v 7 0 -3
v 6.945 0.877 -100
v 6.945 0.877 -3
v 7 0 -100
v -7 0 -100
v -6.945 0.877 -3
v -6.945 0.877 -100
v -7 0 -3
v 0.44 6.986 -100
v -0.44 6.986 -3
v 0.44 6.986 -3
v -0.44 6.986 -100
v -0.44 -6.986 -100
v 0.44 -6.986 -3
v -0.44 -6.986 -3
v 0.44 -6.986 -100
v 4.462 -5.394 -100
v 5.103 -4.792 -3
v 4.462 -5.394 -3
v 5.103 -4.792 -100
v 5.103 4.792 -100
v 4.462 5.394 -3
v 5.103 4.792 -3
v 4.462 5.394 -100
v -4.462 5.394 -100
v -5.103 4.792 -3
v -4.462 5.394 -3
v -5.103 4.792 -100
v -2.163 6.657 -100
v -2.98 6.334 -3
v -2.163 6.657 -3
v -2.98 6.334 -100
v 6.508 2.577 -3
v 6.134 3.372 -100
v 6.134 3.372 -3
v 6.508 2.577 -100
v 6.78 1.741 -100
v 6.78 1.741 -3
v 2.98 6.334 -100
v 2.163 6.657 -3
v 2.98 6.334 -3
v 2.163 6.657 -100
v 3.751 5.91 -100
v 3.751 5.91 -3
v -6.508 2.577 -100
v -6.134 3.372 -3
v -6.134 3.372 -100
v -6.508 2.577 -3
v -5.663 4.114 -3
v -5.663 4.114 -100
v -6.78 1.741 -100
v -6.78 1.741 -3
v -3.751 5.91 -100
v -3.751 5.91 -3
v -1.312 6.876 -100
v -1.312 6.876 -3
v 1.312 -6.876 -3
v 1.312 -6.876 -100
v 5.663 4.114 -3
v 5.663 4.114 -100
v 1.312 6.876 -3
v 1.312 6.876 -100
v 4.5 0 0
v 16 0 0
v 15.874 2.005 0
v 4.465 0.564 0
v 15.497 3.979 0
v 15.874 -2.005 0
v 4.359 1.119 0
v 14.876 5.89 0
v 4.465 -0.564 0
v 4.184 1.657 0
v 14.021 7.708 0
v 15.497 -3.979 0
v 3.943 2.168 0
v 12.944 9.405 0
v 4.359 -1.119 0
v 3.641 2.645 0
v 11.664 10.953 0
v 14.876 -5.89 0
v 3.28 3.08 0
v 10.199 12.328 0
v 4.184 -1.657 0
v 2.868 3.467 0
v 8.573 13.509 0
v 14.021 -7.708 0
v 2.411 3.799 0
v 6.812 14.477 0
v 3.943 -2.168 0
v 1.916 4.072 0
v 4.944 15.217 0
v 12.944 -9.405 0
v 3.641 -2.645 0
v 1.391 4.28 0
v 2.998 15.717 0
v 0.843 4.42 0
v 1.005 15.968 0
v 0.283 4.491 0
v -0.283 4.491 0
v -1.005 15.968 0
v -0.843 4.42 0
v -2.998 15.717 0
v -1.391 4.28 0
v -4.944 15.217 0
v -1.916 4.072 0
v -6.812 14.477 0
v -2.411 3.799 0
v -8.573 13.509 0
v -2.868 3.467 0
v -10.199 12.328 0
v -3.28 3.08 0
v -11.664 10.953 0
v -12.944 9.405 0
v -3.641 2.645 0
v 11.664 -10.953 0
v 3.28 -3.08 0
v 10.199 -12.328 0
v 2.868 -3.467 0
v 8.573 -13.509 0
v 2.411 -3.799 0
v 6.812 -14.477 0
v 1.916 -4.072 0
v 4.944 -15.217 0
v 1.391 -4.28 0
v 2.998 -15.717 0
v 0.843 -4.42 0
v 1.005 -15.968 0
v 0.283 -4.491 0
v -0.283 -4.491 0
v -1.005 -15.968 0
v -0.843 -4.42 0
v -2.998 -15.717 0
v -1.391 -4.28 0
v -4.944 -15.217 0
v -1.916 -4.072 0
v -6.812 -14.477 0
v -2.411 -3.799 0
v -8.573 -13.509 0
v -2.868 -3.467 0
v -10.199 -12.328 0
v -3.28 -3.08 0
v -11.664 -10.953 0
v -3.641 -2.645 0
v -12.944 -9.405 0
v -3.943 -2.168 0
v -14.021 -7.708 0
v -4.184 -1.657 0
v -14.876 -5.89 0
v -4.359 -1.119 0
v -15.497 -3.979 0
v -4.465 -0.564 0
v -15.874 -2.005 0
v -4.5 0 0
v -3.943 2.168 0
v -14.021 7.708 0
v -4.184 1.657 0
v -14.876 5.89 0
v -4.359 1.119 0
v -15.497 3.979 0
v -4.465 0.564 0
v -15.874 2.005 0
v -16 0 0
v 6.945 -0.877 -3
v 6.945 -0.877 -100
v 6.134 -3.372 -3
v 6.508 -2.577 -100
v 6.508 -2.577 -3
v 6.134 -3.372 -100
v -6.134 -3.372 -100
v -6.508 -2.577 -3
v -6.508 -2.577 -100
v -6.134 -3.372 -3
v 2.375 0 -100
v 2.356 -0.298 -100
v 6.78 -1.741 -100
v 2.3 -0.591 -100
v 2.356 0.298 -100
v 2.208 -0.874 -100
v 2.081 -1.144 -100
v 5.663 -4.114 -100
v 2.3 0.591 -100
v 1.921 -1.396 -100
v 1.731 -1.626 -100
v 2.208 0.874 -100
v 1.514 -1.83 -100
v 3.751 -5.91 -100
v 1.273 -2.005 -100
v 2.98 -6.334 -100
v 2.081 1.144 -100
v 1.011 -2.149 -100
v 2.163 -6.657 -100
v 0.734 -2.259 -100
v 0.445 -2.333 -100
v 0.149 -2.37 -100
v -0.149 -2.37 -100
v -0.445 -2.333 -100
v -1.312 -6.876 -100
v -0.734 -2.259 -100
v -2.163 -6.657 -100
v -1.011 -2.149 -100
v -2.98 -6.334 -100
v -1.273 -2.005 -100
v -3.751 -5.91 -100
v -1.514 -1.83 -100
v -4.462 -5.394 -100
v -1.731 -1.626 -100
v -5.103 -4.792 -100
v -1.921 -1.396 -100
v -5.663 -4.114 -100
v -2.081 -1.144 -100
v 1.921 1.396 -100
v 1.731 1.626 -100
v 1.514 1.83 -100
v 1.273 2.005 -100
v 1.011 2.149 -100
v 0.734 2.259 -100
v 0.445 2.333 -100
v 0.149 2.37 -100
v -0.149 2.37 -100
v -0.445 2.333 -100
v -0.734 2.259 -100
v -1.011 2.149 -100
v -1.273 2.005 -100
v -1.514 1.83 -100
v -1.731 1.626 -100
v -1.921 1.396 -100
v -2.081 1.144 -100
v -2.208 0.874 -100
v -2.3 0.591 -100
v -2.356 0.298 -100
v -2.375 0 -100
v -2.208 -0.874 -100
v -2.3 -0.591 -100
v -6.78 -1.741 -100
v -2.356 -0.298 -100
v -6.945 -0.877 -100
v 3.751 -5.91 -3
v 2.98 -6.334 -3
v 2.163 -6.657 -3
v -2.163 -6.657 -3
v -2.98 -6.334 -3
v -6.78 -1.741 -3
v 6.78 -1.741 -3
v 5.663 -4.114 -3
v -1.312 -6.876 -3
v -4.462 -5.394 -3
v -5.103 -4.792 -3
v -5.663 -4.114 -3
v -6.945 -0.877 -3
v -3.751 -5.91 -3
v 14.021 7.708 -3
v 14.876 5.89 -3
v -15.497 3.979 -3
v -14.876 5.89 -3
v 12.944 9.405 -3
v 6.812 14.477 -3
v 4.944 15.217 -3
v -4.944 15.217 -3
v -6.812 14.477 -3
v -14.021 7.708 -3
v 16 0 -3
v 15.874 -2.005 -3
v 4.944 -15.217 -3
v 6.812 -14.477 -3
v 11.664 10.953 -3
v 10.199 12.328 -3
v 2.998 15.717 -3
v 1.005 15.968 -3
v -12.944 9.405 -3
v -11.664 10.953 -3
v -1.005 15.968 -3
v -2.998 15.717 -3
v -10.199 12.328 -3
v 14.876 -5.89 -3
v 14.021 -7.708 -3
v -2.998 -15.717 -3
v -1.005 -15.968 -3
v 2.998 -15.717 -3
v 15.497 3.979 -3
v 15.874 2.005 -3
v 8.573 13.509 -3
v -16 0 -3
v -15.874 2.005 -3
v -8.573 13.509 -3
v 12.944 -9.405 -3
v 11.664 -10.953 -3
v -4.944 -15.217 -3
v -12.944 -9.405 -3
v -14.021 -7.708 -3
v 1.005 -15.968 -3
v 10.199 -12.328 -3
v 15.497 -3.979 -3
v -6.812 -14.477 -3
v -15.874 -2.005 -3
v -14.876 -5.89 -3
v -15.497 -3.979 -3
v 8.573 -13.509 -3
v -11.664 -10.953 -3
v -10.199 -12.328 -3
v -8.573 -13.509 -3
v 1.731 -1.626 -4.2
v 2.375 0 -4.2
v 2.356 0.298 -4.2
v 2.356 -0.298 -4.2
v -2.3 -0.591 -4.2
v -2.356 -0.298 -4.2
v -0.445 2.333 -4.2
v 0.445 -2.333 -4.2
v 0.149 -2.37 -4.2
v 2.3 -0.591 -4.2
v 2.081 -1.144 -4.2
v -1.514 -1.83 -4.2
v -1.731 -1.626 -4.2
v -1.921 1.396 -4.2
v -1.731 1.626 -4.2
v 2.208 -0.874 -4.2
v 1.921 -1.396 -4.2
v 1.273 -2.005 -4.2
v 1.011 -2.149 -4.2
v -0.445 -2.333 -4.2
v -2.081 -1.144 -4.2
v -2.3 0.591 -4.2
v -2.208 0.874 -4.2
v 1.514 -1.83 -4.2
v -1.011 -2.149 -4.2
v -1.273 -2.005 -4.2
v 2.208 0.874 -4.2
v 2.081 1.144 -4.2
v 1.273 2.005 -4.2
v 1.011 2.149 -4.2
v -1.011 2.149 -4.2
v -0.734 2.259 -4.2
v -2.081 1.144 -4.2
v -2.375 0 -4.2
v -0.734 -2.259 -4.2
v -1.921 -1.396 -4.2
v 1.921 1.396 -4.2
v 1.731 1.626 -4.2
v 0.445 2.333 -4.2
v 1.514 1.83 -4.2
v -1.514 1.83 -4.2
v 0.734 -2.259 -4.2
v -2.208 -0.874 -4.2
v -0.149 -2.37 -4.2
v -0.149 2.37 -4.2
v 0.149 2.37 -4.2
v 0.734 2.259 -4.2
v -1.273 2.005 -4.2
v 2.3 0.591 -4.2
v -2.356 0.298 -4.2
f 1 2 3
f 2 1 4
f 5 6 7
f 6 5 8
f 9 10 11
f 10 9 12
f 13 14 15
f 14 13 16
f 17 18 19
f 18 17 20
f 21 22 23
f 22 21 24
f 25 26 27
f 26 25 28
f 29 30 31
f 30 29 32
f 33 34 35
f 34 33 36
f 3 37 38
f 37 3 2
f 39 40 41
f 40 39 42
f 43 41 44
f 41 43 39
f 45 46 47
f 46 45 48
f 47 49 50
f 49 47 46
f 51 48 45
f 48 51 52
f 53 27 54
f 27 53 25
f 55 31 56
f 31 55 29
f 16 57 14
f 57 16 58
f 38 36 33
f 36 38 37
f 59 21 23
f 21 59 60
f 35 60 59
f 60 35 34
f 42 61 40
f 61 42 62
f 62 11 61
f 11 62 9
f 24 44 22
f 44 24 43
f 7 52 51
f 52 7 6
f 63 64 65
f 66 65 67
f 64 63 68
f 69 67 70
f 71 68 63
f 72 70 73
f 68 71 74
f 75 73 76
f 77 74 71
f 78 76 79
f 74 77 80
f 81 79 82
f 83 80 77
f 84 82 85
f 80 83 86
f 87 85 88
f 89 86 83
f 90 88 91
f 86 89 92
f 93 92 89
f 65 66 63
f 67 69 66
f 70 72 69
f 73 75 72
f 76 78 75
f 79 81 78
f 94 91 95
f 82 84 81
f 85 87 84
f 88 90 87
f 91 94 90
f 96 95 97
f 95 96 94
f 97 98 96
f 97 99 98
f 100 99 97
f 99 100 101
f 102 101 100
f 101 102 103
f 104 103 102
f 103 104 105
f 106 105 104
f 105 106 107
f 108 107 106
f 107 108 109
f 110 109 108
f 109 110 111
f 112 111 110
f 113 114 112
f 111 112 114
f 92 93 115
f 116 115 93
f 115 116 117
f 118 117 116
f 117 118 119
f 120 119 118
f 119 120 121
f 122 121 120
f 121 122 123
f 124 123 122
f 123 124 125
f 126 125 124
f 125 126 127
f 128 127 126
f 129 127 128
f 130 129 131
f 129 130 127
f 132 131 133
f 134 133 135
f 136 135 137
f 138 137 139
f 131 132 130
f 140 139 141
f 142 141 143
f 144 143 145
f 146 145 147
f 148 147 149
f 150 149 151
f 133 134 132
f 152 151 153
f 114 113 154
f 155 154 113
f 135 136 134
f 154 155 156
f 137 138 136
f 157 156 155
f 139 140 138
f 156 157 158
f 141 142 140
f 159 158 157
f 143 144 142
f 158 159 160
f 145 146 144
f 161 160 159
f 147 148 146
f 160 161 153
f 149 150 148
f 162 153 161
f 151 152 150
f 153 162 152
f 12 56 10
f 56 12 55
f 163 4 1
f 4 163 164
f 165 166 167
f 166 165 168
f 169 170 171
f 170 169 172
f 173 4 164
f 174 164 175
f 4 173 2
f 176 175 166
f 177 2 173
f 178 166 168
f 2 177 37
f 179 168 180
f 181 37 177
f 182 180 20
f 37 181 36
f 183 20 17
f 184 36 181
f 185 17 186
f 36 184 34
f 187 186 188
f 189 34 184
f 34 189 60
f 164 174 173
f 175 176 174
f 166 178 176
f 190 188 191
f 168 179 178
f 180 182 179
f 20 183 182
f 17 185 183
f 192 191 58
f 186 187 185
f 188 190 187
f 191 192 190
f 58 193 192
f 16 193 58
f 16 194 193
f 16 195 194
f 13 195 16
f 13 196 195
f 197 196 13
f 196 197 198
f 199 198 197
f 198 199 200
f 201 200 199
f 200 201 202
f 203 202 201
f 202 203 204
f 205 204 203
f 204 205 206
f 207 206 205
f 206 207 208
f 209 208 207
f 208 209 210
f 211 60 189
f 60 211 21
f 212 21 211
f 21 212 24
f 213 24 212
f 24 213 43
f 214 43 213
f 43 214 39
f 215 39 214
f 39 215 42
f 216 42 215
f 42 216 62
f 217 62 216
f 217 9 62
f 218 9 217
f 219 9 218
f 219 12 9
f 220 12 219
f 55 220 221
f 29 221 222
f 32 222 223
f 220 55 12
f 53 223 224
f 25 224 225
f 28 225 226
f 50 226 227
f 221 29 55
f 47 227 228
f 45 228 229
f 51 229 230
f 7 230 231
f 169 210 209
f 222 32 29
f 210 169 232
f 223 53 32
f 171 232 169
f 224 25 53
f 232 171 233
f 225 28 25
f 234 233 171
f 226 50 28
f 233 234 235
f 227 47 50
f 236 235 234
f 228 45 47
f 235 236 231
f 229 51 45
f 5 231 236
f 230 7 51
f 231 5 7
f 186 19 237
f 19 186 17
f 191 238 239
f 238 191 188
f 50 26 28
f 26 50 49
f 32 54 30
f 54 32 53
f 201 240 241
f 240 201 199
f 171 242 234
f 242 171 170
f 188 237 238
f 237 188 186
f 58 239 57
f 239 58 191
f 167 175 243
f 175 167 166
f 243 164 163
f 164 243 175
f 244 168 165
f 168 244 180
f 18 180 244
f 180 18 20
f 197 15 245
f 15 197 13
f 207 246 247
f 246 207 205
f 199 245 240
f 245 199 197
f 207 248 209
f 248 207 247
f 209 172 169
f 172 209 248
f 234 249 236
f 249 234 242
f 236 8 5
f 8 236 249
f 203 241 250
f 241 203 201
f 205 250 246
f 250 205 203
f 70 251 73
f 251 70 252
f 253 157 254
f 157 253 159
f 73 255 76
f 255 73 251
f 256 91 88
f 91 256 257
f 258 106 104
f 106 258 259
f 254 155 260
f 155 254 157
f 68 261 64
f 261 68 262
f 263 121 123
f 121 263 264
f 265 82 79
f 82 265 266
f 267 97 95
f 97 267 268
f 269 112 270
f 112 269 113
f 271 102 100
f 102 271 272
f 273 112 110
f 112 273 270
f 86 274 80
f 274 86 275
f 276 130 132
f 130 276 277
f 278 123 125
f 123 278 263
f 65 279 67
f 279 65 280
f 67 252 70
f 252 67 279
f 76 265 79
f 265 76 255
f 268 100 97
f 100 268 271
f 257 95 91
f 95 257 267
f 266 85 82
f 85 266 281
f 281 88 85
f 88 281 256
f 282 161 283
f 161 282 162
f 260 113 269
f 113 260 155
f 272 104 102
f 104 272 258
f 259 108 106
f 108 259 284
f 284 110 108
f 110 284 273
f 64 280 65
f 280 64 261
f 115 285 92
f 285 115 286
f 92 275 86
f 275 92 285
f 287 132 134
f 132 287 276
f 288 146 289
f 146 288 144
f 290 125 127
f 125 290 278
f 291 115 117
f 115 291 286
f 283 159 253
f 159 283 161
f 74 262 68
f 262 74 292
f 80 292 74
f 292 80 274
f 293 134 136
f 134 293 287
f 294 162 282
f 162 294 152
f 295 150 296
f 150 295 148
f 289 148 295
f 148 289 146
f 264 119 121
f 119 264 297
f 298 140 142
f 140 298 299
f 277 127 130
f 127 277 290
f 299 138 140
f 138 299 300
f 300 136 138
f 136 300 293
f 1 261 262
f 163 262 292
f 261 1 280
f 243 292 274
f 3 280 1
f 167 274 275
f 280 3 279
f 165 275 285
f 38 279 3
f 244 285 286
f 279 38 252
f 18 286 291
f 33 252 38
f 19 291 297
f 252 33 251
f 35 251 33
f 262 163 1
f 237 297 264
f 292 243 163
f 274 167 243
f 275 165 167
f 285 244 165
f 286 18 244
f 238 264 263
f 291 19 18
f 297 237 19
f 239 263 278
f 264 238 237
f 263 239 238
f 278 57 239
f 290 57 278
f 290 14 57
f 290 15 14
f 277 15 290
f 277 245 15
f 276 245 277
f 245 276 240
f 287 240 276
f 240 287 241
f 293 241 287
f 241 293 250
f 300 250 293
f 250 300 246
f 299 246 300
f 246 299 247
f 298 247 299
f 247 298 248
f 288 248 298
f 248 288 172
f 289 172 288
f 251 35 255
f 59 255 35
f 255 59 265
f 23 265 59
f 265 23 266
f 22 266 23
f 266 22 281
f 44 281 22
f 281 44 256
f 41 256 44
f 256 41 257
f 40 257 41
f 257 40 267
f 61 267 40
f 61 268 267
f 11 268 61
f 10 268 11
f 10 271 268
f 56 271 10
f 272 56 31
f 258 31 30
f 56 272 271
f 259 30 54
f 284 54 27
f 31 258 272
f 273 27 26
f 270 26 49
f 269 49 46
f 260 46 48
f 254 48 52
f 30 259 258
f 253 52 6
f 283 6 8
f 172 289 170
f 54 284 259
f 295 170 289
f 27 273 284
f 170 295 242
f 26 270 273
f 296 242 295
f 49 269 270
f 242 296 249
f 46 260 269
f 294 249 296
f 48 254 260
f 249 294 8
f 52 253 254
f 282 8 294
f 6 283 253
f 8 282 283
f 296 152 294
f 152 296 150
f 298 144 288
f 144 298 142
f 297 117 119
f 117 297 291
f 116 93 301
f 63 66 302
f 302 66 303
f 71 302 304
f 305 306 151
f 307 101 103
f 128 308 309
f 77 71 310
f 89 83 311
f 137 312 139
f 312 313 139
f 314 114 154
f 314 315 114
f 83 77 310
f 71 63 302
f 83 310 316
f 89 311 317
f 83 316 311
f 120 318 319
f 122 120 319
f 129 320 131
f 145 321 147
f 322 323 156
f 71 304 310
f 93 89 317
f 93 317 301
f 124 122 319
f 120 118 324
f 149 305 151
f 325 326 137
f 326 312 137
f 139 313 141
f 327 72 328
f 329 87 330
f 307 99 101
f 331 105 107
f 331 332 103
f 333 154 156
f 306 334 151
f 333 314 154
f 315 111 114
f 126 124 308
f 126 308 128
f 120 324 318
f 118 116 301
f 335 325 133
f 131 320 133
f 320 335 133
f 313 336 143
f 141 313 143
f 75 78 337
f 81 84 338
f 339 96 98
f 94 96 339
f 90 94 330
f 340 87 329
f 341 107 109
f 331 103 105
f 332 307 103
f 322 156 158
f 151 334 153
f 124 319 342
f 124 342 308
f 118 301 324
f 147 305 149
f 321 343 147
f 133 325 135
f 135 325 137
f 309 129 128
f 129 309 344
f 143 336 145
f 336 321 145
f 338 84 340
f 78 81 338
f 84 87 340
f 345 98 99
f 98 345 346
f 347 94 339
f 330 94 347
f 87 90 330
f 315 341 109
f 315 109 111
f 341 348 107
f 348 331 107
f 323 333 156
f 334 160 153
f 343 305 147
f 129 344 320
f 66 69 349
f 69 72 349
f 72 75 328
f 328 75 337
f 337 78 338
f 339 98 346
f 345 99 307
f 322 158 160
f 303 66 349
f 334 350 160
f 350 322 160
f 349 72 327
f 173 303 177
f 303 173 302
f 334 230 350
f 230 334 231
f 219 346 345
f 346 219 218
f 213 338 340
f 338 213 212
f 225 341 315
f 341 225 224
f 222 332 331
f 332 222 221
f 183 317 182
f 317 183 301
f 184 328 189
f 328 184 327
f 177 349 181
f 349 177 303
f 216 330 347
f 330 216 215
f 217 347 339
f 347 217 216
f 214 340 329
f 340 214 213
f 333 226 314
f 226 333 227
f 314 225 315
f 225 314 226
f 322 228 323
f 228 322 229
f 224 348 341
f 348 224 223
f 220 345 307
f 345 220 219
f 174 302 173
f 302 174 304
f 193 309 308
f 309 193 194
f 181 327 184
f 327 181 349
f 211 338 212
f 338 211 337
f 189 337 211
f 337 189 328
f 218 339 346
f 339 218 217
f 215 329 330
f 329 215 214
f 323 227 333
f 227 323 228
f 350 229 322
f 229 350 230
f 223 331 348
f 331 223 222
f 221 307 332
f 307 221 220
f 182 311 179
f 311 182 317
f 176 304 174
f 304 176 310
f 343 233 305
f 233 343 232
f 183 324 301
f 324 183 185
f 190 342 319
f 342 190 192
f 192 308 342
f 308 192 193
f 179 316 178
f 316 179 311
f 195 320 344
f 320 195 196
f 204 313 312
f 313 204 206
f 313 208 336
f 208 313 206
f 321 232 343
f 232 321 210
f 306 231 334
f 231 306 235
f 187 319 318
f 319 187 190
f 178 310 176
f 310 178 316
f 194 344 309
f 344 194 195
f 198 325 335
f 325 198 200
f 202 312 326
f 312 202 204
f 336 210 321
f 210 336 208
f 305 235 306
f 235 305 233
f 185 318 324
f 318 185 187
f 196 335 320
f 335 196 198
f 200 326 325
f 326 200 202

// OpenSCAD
$fn = 50;


difference() {
	union() {
		translate(v = [0, 0, -100.0000000000]) {
			cylinder(h = 100, r = 7.0000000000);
		}
		translate(v = [0, 0, -3.0000000000]) {
			cylinder(h = 3, r = 16.0000000000);
		}
	}
	union() {
		translate(v = [0, 0, 0]) {
			rotate(a = [0, 0, 0]) {
				difference() {
					union() {
						#translate(v = [0, 0, -100.0000000000]) {
							cylinder(h = 100, r = 2.2500000000);
						}
						#translate(v = [0, 0, -4.2000000000]) {
							cylinder(h = 4.2000000000, r = 7.0000000000, r1 = 2.3750000000, r2 = 4.5000000000);
						}
						#translate(v = [0, 0, -100.0000000000]) {
							cylinder(h = 100, r = 2.3750000000);
						}
						#translate(v = [0, 0, -100.0000000000]) {
							cylinder(h = 100, r = 2.2500000000);
						}
					}
					union();
				}
			}
		}
	}
}
